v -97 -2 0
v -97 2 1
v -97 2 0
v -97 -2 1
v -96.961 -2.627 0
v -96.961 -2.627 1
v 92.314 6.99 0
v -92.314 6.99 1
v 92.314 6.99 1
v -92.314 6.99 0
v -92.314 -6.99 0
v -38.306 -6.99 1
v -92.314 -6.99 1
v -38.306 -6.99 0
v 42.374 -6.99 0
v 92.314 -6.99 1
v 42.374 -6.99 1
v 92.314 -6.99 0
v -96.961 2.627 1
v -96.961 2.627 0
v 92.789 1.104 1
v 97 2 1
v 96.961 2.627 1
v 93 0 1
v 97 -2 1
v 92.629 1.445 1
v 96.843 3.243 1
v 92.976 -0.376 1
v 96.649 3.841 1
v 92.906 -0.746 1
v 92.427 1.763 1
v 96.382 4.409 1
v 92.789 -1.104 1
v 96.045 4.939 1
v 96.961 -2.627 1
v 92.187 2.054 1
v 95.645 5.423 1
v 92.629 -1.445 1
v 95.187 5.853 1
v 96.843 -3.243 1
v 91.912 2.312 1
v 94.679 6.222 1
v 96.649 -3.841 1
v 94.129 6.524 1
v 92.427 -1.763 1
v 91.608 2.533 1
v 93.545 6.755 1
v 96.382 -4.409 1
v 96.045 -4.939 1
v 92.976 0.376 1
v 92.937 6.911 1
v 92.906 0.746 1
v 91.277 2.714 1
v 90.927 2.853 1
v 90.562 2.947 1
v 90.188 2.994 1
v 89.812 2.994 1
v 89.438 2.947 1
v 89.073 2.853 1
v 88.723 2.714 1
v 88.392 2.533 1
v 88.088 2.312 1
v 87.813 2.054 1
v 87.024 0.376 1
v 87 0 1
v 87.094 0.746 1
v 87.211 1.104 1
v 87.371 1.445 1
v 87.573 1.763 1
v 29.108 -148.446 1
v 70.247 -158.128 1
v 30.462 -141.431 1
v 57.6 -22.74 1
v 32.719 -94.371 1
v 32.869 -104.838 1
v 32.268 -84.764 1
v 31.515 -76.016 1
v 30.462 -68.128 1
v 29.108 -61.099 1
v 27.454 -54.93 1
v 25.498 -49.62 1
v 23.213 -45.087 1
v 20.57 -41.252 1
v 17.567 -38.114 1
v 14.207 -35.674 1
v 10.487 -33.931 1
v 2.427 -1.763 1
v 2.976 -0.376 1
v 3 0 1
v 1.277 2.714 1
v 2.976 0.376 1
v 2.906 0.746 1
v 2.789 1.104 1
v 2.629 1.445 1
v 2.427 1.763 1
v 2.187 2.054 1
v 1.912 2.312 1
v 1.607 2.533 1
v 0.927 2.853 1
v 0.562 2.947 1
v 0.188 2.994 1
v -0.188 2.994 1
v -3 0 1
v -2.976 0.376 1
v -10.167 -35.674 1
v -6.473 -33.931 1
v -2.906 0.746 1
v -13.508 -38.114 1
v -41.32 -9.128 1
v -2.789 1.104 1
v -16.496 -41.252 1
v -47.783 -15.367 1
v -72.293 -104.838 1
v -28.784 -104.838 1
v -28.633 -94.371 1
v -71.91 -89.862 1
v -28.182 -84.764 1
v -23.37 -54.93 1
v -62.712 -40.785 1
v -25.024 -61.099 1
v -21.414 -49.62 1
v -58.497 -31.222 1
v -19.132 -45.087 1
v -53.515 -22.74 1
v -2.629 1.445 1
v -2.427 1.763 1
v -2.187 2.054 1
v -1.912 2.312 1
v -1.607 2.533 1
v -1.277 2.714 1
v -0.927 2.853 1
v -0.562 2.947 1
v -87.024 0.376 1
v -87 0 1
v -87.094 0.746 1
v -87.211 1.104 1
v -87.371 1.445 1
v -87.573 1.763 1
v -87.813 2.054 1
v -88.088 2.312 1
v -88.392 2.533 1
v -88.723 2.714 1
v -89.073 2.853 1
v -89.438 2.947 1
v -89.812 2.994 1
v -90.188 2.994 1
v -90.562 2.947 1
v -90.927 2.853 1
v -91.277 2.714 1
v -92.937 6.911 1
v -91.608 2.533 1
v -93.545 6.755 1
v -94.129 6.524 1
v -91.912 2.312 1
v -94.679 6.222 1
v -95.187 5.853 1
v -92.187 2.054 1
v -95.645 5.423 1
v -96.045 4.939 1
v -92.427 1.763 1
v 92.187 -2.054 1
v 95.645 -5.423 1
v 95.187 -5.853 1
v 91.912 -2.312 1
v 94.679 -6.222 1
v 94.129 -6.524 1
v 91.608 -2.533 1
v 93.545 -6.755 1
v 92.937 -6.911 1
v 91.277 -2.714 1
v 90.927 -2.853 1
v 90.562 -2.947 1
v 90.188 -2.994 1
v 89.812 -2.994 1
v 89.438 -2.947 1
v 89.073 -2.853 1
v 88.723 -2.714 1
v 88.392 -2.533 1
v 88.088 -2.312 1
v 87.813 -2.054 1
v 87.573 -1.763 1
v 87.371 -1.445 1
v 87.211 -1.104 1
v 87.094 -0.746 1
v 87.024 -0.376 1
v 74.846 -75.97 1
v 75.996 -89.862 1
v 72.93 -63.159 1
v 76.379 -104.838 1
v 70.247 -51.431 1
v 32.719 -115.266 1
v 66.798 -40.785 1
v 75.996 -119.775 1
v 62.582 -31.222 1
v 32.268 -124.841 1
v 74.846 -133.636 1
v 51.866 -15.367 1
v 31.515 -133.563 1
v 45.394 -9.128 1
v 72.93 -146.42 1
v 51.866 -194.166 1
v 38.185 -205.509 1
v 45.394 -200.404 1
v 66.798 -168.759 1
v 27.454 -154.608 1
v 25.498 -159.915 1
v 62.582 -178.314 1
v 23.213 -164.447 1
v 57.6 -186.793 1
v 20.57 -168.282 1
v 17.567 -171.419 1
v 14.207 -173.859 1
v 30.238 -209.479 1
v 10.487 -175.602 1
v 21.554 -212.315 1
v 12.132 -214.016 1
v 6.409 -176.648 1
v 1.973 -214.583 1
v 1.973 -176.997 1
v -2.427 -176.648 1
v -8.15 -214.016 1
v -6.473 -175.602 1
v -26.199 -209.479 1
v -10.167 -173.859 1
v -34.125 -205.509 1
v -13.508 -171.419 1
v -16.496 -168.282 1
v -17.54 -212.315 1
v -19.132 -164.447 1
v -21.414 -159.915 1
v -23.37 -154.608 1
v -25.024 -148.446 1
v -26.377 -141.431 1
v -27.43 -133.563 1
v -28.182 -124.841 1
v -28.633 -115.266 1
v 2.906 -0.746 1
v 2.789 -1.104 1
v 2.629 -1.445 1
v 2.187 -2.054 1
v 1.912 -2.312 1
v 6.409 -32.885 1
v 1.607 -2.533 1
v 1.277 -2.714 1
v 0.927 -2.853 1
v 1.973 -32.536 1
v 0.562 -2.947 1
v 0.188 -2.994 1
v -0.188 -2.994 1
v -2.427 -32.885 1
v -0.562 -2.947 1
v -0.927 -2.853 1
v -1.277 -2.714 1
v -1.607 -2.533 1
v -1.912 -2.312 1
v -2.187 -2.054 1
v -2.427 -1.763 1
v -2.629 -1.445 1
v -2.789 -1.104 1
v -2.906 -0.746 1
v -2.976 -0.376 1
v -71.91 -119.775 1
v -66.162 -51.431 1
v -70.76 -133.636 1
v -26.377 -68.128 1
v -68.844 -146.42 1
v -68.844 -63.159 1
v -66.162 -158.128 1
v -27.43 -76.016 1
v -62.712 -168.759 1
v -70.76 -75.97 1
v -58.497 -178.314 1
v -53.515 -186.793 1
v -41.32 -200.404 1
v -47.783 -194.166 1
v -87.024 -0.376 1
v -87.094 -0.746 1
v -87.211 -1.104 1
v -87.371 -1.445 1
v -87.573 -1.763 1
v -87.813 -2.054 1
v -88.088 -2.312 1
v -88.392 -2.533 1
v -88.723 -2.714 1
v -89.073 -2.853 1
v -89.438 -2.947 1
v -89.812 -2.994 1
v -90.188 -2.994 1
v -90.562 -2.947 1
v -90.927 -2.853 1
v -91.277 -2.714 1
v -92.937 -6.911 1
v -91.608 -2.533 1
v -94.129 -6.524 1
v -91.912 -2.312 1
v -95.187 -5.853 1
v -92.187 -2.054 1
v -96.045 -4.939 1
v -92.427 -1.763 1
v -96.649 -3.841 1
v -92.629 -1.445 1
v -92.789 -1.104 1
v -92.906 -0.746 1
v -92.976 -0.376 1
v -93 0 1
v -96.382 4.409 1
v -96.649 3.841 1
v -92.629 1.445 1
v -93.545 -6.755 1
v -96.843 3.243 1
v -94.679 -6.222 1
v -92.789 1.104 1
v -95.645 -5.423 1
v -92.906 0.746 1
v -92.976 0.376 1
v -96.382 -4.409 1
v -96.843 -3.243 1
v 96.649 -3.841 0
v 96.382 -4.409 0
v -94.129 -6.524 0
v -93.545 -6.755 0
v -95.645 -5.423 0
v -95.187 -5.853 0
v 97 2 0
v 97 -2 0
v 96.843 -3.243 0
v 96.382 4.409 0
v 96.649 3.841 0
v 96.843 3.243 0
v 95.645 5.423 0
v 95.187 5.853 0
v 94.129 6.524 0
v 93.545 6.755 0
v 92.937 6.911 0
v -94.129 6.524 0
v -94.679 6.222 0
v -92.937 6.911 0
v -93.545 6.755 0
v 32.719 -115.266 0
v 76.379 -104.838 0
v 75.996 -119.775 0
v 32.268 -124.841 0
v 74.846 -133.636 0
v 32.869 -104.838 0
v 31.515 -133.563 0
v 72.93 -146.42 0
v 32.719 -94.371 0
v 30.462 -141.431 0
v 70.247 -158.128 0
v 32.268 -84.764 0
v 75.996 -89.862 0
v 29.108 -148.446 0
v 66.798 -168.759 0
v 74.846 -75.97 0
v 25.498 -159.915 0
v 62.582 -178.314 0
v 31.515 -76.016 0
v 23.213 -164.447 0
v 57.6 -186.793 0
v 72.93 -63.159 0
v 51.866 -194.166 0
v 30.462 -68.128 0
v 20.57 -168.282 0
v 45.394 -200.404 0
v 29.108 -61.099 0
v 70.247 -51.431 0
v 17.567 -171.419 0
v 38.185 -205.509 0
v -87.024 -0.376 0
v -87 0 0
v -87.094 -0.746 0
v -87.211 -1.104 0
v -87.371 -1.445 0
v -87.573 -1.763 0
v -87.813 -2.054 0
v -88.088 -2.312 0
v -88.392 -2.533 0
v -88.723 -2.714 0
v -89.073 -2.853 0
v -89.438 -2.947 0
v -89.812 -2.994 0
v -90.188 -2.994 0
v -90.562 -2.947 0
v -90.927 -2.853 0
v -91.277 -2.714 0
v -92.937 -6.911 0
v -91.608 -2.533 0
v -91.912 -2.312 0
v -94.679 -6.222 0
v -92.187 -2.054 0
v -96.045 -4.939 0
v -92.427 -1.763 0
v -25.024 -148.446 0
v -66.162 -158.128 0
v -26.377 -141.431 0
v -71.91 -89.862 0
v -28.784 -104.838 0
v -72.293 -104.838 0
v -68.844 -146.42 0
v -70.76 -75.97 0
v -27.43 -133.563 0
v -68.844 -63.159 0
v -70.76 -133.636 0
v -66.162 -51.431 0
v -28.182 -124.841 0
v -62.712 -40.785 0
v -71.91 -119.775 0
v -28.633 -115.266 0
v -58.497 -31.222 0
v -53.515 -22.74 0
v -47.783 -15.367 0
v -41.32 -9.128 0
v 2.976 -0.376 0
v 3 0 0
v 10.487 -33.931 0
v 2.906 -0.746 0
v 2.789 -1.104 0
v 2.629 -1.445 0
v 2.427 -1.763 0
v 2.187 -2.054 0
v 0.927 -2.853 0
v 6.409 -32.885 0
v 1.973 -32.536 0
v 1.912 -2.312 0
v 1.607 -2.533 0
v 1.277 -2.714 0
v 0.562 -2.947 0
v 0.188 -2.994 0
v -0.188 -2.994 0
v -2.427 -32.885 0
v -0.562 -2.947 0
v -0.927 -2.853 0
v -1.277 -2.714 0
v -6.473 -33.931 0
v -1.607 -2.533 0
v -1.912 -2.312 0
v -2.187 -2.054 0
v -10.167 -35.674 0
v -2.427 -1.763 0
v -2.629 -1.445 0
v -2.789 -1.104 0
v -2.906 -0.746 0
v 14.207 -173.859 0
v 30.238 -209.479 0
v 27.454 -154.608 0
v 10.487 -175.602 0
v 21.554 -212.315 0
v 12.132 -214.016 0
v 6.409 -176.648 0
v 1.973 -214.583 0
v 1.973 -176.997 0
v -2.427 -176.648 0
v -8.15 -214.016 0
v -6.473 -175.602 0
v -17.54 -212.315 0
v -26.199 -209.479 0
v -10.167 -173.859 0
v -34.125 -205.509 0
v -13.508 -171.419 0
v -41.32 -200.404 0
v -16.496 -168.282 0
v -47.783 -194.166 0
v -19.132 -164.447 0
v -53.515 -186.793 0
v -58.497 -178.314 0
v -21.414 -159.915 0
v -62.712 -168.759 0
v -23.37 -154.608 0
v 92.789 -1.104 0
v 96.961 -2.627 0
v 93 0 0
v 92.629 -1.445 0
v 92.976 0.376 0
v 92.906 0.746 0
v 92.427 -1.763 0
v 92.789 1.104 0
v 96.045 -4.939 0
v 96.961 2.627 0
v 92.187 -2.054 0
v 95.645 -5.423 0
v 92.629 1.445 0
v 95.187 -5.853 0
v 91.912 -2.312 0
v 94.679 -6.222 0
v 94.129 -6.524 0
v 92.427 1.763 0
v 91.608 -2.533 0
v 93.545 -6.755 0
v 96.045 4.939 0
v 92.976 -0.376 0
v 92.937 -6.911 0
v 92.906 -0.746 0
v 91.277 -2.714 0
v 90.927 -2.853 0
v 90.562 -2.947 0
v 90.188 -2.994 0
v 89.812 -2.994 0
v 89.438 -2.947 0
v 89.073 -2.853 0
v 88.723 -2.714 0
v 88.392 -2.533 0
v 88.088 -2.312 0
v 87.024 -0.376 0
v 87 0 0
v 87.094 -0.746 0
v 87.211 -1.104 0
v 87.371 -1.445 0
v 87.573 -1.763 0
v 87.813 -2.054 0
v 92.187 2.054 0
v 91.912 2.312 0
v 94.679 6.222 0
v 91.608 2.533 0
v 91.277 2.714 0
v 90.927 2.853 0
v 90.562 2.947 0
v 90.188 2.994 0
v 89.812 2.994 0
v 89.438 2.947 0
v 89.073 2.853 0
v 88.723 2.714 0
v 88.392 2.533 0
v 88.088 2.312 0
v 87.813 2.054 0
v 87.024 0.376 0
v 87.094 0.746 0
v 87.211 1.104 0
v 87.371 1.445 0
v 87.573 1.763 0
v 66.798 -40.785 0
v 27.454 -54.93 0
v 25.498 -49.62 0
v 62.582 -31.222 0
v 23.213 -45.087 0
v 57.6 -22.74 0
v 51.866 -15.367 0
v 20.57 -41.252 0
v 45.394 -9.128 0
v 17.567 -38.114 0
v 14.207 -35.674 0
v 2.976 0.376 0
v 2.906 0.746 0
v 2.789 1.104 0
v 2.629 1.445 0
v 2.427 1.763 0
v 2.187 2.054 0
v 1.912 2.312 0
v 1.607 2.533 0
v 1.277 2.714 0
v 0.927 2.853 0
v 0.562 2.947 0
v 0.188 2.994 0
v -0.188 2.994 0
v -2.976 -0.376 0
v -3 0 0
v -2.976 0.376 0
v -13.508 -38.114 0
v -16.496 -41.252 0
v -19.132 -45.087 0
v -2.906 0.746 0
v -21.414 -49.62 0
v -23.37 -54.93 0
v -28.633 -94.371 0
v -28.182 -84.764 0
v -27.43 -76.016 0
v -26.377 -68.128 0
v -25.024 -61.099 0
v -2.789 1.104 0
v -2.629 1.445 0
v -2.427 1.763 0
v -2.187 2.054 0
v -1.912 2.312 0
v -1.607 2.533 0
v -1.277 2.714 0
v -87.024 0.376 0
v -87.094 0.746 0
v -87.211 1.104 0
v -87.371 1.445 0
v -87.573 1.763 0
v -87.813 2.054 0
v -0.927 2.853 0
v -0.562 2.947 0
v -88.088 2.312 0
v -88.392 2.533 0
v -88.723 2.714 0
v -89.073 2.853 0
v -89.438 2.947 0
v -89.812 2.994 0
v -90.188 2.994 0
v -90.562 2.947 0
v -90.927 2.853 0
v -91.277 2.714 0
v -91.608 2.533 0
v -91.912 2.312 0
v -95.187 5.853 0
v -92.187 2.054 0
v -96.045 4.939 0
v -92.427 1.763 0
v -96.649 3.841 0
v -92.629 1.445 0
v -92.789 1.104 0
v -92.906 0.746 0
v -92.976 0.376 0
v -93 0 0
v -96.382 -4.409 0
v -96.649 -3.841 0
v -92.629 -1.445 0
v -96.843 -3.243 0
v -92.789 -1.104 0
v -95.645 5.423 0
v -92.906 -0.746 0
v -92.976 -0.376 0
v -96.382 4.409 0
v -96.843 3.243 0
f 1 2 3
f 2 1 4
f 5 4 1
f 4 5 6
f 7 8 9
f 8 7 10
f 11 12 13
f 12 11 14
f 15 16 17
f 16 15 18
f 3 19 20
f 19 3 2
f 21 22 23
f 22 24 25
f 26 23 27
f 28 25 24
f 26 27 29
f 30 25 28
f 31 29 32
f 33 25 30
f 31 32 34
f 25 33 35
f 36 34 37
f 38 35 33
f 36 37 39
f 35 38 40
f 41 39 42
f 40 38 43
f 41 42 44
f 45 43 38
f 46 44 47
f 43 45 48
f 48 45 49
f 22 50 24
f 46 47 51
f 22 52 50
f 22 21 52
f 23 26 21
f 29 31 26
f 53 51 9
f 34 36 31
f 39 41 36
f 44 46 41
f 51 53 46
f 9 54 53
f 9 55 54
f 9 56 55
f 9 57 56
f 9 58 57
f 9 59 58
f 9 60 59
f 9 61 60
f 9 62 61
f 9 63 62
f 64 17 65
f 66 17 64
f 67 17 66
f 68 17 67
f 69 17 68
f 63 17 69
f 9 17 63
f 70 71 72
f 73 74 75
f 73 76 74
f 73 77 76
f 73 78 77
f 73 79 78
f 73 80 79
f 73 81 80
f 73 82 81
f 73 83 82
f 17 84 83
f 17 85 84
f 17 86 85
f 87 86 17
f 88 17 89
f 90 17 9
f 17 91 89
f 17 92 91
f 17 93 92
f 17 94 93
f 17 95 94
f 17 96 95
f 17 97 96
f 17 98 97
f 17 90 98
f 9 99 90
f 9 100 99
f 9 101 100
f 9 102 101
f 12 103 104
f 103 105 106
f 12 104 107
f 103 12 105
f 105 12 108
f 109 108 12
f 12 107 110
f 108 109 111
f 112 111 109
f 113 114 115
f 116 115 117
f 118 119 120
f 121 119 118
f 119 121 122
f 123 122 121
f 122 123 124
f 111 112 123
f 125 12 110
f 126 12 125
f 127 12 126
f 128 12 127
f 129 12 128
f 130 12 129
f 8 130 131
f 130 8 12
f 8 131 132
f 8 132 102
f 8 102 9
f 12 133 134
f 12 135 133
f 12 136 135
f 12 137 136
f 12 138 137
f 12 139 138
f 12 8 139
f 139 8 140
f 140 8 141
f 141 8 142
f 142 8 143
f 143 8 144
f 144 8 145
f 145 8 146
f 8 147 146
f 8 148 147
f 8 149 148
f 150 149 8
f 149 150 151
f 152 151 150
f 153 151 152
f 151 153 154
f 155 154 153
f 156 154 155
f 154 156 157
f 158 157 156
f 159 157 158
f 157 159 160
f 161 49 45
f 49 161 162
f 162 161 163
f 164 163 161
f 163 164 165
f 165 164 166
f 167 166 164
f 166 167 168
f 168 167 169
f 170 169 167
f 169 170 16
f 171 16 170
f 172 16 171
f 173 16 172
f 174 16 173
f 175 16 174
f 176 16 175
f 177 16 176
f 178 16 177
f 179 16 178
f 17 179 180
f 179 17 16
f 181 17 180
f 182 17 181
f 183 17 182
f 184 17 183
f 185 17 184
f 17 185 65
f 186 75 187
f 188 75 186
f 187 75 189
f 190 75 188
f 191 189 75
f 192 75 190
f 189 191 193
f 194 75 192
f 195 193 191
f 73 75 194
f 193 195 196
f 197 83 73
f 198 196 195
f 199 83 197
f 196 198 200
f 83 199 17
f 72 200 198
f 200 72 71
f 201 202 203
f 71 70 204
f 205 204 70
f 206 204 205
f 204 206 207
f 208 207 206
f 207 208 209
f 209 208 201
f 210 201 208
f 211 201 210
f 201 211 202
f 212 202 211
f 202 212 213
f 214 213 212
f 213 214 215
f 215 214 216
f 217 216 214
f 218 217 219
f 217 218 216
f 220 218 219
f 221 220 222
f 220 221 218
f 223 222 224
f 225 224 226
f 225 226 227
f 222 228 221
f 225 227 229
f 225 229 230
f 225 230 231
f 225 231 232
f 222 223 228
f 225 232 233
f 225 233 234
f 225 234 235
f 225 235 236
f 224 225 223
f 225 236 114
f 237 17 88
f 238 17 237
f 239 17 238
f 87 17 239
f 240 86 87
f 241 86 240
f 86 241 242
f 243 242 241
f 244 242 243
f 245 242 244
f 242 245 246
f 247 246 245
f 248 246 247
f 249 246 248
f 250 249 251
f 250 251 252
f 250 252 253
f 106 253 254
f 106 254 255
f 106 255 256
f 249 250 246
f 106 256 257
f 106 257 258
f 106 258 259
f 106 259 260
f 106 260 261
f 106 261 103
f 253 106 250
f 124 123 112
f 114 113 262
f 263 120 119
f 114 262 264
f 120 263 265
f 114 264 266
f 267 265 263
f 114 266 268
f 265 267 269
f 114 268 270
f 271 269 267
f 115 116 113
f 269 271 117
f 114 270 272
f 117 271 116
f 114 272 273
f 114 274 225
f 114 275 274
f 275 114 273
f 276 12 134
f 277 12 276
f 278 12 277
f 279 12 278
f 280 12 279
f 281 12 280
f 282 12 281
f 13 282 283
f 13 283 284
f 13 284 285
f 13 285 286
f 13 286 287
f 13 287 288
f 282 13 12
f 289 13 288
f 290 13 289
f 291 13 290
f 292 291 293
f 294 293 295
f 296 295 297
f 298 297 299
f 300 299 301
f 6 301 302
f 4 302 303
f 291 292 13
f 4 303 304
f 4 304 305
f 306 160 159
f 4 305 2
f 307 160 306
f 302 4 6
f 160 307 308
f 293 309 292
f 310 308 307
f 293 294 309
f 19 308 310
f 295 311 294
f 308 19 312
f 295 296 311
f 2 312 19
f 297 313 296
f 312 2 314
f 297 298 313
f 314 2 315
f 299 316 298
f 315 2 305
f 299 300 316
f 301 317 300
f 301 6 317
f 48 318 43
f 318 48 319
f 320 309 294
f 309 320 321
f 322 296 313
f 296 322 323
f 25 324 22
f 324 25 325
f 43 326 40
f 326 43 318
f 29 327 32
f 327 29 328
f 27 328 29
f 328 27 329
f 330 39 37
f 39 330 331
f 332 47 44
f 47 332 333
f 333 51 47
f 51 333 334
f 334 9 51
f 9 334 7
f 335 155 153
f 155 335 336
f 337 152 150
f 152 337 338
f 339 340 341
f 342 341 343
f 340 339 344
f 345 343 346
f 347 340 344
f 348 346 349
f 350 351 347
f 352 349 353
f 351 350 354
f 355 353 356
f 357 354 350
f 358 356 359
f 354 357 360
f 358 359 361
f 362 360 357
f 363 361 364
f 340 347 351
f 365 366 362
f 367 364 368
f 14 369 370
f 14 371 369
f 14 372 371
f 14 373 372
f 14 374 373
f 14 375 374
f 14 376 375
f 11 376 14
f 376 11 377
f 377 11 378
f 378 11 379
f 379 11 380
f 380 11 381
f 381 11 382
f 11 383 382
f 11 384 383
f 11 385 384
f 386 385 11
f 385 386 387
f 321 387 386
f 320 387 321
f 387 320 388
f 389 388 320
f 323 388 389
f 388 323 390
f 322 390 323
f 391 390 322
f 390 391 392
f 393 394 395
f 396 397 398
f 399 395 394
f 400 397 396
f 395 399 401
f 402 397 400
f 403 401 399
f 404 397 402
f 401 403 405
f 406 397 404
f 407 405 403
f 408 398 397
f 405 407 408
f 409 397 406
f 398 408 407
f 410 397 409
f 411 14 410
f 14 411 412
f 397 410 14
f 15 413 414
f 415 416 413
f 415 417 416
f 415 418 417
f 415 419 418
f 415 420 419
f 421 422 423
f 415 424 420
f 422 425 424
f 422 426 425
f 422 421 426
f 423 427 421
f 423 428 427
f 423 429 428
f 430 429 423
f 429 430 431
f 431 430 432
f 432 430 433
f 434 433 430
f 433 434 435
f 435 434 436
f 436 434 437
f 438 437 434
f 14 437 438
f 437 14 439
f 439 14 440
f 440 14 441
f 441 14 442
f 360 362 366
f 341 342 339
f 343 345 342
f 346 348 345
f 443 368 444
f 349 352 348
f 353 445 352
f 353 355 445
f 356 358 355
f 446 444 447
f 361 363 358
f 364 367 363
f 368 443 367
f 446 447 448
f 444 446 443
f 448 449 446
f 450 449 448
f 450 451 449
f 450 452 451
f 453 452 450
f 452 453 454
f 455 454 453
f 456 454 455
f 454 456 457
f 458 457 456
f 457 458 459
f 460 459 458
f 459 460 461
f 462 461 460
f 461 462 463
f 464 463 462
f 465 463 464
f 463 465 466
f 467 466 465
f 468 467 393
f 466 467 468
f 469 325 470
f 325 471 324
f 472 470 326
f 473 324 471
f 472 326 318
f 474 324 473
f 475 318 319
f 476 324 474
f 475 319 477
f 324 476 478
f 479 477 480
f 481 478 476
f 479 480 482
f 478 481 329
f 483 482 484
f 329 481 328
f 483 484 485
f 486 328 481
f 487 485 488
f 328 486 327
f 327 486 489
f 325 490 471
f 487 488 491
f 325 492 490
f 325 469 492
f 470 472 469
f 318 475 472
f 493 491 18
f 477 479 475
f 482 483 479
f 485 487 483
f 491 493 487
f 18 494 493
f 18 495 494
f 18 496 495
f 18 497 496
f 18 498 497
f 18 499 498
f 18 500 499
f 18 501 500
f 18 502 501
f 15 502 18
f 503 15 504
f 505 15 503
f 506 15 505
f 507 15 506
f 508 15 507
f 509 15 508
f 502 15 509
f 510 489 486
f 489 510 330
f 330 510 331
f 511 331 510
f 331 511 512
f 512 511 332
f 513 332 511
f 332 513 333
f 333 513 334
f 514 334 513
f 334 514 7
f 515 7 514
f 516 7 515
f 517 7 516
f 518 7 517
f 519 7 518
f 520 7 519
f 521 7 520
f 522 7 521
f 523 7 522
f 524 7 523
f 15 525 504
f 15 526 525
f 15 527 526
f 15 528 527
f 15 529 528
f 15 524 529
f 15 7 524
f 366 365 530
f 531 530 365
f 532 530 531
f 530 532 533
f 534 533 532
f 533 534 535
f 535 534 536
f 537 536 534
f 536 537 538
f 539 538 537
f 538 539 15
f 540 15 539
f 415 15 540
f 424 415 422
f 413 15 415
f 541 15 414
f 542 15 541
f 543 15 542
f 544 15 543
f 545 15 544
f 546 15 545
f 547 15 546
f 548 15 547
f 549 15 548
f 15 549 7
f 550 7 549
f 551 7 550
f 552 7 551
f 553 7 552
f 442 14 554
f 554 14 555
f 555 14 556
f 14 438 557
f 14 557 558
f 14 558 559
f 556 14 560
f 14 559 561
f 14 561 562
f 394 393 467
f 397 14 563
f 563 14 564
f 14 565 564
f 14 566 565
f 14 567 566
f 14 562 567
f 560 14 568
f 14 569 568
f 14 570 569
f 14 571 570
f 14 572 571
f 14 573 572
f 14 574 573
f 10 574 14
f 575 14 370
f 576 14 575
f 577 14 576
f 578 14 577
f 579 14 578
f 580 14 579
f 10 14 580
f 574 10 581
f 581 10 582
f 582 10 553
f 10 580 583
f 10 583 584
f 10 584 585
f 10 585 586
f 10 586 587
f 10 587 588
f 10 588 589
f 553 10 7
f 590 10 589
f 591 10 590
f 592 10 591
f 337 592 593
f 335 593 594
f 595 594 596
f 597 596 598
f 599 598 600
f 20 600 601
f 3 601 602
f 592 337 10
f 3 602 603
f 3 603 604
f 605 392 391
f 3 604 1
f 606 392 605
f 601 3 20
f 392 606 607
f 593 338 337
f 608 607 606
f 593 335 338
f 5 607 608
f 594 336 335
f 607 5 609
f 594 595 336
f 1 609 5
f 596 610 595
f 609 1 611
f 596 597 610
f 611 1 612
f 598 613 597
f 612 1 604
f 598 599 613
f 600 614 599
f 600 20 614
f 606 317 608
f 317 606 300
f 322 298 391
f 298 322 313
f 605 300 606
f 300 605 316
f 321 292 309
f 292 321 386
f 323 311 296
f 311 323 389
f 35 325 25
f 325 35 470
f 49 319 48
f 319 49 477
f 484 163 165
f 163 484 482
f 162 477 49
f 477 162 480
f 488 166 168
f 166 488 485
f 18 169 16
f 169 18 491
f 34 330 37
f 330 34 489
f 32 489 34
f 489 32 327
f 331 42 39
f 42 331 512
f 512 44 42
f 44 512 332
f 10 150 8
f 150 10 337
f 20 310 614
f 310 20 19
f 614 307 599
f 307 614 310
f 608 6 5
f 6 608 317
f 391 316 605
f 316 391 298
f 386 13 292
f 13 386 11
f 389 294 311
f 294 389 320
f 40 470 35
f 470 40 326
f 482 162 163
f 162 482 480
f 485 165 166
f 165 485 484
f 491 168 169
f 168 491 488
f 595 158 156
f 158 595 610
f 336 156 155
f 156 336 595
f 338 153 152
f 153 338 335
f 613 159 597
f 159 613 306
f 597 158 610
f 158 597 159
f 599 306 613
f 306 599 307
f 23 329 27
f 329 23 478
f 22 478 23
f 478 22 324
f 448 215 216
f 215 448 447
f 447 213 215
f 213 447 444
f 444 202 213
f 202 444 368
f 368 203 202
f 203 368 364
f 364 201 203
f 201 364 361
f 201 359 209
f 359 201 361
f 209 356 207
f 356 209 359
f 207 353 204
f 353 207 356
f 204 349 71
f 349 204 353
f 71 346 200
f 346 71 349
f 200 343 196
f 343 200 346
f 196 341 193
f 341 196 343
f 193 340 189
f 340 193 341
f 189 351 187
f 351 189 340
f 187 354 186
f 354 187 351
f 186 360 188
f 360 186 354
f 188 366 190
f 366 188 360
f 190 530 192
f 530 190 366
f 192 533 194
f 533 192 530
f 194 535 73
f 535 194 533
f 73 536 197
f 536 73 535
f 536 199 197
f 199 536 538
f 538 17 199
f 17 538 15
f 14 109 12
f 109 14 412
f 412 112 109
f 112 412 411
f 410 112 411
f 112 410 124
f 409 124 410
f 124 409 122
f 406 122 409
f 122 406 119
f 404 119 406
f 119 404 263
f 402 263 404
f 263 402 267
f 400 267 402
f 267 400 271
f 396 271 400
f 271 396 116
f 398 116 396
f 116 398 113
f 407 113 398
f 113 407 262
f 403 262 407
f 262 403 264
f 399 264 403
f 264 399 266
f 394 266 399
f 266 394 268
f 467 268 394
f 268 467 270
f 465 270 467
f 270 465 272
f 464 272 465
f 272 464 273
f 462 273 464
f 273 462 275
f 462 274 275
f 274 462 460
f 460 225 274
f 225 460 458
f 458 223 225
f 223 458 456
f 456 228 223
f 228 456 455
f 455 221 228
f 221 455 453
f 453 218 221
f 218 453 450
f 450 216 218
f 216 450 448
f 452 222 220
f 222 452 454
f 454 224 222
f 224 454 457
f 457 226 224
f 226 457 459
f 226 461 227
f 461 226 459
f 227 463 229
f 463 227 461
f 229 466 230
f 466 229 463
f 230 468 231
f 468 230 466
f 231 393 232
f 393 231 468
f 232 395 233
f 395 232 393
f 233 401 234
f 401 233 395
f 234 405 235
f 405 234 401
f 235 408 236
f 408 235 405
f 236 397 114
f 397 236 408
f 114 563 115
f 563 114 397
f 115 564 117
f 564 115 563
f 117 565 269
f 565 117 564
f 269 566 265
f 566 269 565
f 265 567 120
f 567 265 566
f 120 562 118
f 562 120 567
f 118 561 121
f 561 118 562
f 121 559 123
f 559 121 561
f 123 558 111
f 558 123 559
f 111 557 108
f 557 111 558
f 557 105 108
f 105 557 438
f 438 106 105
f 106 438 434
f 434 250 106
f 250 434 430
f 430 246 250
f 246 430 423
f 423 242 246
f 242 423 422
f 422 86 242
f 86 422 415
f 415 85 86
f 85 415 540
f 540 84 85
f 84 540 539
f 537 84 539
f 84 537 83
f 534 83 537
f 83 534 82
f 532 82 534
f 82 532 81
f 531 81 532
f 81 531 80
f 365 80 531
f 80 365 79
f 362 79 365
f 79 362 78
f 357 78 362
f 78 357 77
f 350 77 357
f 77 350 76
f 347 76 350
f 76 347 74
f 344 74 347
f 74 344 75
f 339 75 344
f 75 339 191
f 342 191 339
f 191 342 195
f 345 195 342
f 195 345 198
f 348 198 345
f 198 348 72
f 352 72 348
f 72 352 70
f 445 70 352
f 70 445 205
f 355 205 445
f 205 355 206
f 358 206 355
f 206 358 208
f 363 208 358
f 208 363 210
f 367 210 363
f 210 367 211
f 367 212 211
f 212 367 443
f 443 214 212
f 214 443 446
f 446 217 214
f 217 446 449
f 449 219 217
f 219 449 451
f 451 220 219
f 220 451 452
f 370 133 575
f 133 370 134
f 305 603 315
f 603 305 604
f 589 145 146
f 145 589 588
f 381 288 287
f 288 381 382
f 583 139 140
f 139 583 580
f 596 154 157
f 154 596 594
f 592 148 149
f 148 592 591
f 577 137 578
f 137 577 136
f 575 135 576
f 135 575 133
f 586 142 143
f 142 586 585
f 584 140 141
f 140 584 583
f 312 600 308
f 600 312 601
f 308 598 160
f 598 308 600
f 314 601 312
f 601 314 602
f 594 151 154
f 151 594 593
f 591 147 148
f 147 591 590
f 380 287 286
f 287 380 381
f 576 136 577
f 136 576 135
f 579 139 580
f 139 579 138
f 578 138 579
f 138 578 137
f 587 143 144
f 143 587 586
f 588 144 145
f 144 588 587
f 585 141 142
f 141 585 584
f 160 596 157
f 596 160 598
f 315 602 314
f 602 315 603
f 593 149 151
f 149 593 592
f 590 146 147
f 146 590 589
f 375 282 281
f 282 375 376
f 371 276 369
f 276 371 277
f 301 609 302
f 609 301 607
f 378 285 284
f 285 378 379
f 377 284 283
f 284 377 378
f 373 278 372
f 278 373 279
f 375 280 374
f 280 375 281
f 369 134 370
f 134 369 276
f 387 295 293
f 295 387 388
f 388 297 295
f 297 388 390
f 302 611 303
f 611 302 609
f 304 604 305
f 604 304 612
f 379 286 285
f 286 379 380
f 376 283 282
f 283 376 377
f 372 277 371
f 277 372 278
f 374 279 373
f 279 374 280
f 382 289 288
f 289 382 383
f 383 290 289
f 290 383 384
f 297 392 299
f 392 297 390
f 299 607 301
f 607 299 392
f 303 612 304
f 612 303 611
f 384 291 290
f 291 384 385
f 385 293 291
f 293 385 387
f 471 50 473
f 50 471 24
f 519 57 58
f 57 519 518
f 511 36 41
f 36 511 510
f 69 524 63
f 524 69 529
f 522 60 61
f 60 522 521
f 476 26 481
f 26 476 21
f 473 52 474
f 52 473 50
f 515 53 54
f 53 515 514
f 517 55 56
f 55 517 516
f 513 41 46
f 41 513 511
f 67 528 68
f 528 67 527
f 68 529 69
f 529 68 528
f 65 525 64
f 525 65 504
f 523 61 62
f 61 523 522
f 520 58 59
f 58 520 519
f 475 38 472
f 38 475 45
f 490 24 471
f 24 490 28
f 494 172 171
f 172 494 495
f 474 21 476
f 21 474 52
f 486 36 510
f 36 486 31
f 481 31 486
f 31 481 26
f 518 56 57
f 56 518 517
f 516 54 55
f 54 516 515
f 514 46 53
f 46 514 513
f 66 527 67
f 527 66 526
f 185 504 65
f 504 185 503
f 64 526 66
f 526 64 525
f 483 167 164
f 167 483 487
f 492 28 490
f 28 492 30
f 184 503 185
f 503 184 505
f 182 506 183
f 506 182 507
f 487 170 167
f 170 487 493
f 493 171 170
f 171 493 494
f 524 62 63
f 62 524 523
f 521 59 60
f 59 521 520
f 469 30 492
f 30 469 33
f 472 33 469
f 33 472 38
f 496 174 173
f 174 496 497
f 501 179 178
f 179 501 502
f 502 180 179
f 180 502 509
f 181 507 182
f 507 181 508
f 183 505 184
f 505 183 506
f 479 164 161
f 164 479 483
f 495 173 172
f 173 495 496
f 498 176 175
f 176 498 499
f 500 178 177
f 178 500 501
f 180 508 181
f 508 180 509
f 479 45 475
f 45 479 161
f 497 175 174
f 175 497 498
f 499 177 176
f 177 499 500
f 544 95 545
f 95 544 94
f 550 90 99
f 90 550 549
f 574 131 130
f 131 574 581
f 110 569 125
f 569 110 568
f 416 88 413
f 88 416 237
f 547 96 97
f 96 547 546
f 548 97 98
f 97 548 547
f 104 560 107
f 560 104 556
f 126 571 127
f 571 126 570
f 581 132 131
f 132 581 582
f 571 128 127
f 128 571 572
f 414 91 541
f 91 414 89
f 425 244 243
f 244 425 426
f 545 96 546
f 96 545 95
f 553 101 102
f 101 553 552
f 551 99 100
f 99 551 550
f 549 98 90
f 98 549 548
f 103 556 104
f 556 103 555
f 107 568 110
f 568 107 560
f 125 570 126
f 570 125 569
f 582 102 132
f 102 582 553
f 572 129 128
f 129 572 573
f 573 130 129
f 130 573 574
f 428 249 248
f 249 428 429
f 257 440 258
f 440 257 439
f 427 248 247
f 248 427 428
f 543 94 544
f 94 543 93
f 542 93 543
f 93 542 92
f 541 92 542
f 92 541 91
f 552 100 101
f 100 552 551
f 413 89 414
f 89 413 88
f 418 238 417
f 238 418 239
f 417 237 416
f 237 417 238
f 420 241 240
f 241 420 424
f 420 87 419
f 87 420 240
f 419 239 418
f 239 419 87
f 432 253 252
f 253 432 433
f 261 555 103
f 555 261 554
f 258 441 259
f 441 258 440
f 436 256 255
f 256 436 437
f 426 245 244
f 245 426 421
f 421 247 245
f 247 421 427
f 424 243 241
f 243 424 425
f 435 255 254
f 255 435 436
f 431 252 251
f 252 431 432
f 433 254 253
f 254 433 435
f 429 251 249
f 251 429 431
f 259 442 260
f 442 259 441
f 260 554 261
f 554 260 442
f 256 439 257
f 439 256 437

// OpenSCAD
$fn = 50;


difference() {
	union() {
		translate(v = [0, 0, 0]) {
			rotate(a = [0, 0, 0]) {
				hull() {
					translate(v = [-92.0000000000, 2.0000000000, 0]) {
						rotate(a = [0, 0, 0]) {
							translate(v = [0, 0, 0]) {
								rotate(a = [0, 0, 0]) {
									cylinder(h = 1, r = 5);
								}
							}
						}
					}
					translate(v = [92.0000000000, 2.0000000000, 0]) {
						rotate(a = [0, 0, 0]) {
							translate(v = [0, 0, 0]) {
								rotate(a = [0, 0, 0]) {
									cylinder(h = 1, r = 5);
								}
							}
						}
					}
					translate(v = [-92.0000000000, -2.0000000000, 0]) {
						rotate(a = [0, 0, 0]) {
							translate(v = [0, 0, 0]) {
								rotate(a = [0, 0, 0]) {
									cylinder(h = 1, r = 5);
								}
							}
						}
					}
					translate(v = [92.0000000000, -2.0000000000, 0]) {
						rotate(a = [0, 0, 0]) {
							translate(v = [0, 0, 0]) {
								rotate(a = [0, 0, 0]) {
									cylinder(h = 1, r = 5);
								}
							}
						}
					}
				}
			}
		}
		translate(v = [0, 0, 0]) {
			rotate(a = [0, 0, 0]) {
				linear_extrude(height = 1) {
					text(font = "DejaVu Sans Mono:style=Bold", halign = "center", size = 209.0000000000, text = "O", valign = "top");
				}
			}
		}
	}
	union() {
		translate(v = [-90.0000000000, 0.0000000000, -125.0000000000]) {
			rotate(a = [0, 0, 0]) {
				cylinder(h = 250, r = 3.0000000000);
			}
		}
		translate(v = [90.0000000000, 0.0000000000, -125.0000000000]) {
			rotate(a = [0, 0, 0]) {
				cylinder(h = 250, r = 3.0000000000);
			}
		}
		translate(v = [90.0000000000, 0.0000000000, -125.0000000000]) {
			rotate(a = [0, 0, 0]) {
				cylinder(h = 250, r = 3.0000000000);
			}
		}
		translate(v = [0, 0, -125.0000000000]) {
			rotate(a = [0, 0, 0]) {
				cylinder(h = 250, r = 3.0000000000);
			}
		}
	}
}
